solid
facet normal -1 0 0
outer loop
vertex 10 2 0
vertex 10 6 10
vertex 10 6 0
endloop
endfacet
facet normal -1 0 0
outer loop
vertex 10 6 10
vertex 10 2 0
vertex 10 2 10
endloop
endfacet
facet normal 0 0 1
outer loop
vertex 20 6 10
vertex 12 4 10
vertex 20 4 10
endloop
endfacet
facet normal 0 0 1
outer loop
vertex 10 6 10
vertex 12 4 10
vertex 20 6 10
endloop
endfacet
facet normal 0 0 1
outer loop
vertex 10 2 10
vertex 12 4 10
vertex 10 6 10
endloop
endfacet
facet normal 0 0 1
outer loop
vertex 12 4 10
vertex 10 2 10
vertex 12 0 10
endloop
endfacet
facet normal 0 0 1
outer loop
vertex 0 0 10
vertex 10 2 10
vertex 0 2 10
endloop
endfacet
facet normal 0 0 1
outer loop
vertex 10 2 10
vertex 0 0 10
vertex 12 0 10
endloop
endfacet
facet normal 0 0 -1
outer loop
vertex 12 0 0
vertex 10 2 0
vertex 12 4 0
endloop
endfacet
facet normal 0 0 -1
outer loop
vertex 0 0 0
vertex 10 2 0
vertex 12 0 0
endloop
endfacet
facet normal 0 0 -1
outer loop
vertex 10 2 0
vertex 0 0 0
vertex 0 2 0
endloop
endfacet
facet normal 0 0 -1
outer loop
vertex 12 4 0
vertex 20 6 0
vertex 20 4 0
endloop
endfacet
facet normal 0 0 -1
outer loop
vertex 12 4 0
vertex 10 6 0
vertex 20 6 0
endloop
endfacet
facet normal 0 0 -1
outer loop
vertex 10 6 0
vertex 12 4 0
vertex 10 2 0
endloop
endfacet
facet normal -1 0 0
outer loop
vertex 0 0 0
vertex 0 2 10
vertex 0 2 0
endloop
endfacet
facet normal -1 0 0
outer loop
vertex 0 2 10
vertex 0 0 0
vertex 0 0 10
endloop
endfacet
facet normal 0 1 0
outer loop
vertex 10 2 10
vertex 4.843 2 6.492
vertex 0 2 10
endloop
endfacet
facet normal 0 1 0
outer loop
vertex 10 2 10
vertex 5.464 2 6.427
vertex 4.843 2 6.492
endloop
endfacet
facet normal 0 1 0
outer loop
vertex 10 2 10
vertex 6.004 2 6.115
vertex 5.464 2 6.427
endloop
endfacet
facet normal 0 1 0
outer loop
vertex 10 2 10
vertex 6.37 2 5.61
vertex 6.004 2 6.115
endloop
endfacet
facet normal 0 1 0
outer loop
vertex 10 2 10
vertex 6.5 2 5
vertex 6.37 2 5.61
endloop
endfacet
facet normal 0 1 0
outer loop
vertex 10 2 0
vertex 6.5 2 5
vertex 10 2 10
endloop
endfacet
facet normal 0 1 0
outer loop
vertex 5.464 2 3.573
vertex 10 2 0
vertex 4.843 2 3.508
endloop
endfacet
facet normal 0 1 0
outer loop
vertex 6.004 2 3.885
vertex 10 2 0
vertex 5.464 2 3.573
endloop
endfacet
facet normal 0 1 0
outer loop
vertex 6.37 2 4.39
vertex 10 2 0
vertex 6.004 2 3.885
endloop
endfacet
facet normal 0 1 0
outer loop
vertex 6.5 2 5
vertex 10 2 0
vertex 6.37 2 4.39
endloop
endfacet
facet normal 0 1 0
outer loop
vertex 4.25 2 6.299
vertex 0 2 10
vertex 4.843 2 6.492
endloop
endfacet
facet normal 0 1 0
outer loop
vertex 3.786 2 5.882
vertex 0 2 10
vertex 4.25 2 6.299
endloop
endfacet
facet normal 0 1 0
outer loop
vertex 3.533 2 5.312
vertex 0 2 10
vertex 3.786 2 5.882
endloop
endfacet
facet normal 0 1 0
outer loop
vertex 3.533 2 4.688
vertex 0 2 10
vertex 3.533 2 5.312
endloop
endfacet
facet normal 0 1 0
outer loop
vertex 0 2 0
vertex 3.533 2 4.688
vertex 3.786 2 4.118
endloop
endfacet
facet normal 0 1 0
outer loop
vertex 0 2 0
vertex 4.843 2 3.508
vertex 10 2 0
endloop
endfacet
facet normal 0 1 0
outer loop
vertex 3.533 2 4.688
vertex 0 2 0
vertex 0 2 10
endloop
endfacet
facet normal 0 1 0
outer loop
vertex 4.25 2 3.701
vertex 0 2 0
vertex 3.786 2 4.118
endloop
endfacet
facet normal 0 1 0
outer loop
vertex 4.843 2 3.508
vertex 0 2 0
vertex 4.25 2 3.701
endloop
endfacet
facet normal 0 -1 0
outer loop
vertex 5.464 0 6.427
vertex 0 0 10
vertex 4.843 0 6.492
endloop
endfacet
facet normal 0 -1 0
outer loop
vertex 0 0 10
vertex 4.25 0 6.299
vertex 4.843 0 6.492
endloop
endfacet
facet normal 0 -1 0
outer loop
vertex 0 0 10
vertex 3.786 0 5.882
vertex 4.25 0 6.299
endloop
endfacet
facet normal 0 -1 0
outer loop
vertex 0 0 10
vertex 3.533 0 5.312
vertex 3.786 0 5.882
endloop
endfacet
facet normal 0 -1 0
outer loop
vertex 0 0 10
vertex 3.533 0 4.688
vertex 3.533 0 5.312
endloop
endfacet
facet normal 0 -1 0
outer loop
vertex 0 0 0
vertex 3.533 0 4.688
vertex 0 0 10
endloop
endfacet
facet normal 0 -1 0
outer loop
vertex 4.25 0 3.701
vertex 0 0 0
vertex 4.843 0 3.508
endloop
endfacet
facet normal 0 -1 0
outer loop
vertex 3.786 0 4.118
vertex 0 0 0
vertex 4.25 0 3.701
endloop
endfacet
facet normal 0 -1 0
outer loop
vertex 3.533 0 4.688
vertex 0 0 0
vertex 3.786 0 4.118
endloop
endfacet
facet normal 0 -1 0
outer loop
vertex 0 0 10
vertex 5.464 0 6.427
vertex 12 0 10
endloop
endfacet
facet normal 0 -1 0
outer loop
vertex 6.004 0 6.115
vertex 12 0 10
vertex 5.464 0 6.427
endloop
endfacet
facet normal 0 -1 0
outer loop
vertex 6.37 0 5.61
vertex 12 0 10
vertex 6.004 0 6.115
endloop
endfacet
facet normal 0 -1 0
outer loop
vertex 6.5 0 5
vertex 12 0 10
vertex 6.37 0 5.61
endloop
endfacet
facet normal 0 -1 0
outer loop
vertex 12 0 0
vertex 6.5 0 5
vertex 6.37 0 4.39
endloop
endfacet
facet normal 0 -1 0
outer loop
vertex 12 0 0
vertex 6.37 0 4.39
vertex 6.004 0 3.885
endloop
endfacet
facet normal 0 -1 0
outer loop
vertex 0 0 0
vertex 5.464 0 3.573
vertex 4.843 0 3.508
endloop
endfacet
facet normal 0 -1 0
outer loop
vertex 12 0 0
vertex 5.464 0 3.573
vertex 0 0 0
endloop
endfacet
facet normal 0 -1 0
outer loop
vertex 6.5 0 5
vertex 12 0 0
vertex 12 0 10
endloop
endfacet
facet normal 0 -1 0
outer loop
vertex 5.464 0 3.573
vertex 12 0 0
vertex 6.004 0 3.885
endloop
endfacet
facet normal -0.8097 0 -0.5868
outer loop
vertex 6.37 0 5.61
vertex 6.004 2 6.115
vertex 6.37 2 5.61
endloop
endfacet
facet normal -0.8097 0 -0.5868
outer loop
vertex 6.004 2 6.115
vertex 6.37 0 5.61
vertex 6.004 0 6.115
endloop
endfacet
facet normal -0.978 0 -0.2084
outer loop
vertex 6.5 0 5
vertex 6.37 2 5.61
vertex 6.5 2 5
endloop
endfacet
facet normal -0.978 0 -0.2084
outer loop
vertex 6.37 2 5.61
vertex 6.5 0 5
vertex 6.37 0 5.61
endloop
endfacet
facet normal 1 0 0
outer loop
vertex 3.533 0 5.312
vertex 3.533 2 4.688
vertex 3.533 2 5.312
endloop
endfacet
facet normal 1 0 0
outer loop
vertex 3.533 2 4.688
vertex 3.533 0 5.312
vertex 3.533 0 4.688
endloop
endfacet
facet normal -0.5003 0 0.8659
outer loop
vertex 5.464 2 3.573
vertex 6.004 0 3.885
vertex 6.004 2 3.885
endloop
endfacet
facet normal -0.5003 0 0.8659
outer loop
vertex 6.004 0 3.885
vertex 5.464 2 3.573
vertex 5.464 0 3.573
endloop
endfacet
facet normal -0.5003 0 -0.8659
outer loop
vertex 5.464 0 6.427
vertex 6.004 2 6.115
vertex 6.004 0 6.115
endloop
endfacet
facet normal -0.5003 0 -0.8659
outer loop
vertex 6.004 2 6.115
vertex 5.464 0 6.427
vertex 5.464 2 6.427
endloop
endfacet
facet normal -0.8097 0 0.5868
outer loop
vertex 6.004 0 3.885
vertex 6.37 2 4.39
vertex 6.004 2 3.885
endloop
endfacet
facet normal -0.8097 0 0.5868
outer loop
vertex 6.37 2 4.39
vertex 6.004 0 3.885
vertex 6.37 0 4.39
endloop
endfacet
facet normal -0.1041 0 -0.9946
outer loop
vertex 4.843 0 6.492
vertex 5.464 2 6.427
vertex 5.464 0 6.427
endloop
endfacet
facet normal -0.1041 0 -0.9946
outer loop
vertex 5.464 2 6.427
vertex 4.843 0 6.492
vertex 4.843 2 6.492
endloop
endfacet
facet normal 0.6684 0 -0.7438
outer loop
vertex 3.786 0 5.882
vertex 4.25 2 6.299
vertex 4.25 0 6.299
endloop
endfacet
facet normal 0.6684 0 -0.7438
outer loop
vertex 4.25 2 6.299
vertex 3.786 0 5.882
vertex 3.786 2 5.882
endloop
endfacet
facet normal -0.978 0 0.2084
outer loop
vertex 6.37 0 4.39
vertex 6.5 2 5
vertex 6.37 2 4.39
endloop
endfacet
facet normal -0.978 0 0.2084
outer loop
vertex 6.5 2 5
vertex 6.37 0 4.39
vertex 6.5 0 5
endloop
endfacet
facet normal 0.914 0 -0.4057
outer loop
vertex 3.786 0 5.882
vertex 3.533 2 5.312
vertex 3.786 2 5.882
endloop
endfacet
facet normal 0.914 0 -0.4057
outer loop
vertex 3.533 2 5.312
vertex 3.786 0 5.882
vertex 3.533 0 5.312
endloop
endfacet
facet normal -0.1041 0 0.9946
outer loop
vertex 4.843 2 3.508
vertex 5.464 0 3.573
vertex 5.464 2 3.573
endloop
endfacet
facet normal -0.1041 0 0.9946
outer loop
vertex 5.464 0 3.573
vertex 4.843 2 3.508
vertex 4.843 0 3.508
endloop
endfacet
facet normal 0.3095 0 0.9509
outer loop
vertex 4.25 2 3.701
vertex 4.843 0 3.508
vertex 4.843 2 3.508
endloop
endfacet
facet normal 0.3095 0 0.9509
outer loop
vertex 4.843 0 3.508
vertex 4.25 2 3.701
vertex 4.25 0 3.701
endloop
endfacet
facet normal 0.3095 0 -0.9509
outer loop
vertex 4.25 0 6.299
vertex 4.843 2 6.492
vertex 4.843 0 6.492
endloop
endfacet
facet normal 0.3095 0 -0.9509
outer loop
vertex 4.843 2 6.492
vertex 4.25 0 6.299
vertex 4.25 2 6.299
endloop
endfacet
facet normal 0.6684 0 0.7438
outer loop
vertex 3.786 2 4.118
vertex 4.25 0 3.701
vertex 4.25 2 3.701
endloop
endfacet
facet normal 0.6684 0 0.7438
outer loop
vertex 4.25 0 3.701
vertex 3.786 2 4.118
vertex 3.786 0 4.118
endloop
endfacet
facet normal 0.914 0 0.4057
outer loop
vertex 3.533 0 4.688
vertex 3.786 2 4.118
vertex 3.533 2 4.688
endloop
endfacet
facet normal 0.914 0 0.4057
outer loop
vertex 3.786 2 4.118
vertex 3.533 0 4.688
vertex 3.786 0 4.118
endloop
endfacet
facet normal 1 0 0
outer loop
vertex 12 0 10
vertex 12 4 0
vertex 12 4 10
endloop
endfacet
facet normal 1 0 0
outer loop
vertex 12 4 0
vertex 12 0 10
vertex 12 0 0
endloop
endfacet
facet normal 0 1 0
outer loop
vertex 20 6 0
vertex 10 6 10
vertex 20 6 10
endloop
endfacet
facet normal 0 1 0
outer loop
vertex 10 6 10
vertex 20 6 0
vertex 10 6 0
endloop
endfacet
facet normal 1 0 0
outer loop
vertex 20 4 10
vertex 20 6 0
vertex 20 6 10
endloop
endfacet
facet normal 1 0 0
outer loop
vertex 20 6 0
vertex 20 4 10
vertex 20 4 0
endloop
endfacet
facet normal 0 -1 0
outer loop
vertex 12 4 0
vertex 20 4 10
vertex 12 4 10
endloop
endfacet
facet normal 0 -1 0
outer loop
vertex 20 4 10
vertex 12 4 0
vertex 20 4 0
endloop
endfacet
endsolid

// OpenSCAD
module holder() {
	difference() {
		cube([10, 2, 10]);
			translate([5, 0, 5])
				rotate([90, 0, 0])
					cylinder(h=5, r=1.5, center=true, $fn=15);
	}
	translate([10, 0, 0])
		cube([2, 6, 10]);
	translate([12, 4, 0])
		cube([8, 2, 10]);
}

holder();
